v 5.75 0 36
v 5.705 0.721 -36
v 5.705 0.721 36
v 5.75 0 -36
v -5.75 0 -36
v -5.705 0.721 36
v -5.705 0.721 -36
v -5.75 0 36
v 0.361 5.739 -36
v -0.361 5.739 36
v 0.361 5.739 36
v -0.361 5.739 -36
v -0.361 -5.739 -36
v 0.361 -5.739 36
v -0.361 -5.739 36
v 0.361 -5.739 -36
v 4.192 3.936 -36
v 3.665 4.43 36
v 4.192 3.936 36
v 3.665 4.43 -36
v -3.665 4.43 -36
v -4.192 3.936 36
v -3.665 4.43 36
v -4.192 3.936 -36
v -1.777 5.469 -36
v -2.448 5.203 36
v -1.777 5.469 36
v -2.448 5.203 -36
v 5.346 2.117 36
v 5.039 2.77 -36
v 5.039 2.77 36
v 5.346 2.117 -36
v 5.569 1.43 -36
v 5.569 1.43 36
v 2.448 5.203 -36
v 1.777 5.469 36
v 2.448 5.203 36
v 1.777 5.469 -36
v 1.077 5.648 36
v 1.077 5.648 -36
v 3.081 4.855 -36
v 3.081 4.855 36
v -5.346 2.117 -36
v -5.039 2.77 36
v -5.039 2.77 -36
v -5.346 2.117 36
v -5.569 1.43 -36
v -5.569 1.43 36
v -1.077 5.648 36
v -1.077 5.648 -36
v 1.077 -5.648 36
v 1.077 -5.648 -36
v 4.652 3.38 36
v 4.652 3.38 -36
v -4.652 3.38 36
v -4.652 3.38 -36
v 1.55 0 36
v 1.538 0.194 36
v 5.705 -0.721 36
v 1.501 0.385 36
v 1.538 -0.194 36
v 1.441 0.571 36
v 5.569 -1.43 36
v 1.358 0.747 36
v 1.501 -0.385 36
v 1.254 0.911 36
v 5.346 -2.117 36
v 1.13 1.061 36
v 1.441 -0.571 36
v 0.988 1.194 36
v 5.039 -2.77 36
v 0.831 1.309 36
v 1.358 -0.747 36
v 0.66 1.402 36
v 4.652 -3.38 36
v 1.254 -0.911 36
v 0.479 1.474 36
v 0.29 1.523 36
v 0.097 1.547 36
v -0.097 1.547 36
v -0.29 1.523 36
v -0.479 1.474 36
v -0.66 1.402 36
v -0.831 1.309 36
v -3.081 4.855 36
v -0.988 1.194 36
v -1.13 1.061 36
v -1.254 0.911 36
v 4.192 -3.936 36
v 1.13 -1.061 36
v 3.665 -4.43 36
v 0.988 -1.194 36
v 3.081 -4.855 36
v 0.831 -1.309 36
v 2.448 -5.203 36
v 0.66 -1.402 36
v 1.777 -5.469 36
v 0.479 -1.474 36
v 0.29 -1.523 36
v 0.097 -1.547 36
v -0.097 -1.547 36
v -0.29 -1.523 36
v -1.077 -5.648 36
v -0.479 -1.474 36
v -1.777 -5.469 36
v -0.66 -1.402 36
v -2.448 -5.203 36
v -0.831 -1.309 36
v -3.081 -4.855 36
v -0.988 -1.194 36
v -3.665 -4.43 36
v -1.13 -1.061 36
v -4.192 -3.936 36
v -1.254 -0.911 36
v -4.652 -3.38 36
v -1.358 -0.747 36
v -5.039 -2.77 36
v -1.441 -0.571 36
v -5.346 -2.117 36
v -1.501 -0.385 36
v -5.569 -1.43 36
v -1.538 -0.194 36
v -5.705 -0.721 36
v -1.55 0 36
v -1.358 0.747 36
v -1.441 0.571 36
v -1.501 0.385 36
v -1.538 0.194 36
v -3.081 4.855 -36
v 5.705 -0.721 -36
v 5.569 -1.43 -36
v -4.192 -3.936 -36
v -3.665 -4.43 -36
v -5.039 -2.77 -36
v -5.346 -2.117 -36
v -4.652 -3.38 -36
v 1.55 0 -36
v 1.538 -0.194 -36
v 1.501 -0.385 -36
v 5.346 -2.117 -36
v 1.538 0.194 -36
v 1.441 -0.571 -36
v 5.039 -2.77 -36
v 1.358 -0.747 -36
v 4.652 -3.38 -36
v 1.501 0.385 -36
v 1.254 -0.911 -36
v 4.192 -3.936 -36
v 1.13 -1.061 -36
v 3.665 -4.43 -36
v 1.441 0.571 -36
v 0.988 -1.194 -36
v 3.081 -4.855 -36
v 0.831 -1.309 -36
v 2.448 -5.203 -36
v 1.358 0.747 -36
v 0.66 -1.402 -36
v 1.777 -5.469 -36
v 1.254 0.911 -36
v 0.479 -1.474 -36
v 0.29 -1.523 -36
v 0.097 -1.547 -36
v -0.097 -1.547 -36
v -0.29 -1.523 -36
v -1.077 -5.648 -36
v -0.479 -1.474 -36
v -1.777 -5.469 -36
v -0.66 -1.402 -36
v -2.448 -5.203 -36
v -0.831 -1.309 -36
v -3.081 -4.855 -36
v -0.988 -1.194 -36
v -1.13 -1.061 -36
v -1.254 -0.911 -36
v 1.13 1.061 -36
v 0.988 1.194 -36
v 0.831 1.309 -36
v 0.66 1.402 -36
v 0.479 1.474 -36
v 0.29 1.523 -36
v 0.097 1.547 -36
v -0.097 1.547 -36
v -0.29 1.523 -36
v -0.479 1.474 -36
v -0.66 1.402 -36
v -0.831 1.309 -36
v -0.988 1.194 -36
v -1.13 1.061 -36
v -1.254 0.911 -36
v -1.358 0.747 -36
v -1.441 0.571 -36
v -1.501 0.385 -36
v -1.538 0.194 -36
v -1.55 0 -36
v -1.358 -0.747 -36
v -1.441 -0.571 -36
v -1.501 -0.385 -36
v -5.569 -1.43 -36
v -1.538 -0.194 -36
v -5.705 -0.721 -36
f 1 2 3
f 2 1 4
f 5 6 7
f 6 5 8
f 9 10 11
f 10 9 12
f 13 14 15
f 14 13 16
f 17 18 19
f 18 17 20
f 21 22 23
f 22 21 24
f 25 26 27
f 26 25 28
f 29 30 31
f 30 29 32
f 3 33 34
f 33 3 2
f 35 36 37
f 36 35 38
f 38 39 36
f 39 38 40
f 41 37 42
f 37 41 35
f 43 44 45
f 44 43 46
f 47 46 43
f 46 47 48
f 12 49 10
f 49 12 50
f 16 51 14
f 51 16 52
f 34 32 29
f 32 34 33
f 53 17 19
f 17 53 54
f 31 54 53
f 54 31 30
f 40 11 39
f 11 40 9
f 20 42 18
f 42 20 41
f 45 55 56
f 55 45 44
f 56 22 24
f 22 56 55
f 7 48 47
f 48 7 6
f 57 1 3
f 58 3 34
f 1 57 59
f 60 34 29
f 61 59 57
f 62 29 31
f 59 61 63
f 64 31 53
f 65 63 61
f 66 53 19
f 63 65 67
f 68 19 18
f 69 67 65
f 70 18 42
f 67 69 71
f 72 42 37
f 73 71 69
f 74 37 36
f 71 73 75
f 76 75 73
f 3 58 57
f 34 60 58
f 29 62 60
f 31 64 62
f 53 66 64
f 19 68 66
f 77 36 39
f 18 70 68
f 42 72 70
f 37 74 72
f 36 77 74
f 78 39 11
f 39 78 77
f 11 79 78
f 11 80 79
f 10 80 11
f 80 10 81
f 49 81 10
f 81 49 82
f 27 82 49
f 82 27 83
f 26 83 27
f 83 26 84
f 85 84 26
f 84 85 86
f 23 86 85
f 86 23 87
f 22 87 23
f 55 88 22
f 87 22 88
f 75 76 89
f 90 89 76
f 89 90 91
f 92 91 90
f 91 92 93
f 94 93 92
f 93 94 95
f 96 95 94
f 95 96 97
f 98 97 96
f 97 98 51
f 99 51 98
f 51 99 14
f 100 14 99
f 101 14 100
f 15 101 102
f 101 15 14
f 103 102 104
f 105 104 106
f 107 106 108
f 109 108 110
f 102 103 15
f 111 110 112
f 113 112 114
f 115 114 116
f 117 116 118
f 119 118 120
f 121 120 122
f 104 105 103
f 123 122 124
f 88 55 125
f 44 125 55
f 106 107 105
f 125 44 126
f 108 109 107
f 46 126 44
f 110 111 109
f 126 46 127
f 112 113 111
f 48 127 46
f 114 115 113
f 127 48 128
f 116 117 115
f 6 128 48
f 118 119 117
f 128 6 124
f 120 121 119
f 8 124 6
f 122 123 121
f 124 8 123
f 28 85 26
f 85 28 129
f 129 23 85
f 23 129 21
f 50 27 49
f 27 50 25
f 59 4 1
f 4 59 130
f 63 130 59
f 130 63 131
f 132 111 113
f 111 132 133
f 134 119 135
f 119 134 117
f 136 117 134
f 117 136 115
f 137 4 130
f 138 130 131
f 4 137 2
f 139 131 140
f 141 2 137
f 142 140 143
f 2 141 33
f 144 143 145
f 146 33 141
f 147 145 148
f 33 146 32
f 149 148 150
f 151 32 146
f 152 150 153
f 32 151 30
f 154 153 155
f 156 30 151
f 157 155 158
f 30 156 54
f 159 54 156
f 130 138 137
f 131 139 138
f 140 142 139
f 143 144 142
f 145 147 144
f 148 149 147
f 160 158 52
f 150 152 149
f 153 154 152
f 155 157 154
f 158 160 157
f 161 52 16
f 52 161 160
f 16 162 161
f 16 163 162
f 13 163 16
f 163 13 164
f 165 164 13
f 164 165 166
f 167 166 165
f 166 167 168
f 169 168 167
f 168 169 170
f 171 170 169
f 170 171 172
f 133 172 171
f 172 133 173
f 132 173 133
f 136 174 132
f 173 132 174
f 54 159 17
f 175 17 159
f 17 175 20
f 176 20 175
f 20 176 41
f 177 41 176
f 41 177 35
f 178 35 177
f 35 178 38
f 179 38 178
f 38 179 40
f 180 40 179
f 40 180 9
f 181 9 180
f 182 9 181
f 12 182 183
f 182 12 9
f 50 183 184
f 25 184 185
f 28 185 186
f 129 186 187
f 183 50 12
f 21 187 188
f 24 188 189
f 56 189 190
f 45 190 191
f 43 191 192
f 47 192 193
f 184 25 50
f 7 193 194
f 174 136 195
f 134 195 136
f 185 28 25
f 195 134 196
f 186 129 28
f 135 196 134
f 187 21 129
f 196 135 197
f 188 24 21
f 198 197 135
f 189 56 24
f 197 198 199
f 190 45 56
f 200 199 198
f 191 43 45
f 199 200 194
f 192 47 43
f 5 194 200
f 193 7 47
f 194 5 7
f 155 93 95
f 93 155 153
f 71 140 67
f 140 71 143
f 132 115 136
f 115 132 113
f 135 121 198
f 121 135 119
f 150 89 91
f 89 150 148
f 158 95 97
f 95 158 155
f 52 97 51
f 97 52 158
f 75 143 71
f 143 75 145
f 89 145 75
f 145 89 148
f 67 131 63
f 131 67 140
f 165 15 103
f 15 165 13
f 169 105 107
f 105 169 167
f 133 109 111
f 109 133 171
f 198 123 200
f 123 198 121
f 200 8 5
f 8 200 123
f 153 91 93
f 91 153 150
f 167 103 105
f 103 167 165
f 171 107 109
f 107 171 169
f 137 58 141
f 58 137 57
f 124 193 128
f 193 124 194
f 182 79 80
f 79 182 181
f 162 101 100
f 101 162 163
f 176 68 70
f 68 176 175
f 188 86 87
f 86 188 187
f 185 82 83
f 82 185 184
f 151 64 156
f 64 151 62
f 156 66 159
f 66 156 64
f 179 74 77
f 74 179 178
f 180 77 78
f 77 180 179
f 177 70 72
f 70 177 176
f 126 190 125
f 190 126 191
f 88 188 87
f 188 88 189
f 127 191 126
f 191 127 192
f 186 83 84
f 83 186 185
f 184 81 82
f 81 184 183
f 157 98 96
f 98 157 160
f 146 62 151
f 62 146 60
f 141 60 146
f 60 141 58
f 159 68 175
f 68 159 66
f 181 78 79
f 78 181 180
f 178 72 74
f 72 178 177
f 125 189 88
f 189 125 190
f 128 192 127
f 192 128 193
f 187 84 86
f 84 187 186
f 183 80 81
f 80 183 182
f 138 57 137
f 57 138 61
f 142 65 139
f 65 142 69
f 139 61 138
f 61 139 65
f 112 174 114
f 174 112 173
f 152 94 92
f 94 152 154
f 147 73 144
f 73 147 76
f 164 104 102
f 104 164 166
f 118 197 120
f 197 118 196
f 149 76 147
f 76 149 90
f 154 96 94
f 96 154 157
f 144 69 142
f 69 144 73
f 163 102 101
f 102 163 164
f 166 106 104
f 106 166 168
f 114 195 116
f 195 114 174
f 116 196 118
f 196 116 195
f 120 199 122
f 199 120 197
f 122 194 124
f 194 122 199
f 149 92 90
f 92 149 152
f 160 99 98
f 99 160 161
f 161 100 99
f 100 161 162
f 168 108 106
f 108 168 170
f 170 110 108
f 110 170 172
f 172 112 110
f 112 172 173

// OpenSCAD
$fn = 50;


difference() {
	union() {
		translate(v = [0, 0, -36.0000000000]) {
			cylinder(h = 72, r = 5.7500000000);
		}
	}
	union() {
		translate(v = [0, 0, -100.0000000000]) {
			cylinder(h = 200, r = 1.5500000000);
		}
	}
}
